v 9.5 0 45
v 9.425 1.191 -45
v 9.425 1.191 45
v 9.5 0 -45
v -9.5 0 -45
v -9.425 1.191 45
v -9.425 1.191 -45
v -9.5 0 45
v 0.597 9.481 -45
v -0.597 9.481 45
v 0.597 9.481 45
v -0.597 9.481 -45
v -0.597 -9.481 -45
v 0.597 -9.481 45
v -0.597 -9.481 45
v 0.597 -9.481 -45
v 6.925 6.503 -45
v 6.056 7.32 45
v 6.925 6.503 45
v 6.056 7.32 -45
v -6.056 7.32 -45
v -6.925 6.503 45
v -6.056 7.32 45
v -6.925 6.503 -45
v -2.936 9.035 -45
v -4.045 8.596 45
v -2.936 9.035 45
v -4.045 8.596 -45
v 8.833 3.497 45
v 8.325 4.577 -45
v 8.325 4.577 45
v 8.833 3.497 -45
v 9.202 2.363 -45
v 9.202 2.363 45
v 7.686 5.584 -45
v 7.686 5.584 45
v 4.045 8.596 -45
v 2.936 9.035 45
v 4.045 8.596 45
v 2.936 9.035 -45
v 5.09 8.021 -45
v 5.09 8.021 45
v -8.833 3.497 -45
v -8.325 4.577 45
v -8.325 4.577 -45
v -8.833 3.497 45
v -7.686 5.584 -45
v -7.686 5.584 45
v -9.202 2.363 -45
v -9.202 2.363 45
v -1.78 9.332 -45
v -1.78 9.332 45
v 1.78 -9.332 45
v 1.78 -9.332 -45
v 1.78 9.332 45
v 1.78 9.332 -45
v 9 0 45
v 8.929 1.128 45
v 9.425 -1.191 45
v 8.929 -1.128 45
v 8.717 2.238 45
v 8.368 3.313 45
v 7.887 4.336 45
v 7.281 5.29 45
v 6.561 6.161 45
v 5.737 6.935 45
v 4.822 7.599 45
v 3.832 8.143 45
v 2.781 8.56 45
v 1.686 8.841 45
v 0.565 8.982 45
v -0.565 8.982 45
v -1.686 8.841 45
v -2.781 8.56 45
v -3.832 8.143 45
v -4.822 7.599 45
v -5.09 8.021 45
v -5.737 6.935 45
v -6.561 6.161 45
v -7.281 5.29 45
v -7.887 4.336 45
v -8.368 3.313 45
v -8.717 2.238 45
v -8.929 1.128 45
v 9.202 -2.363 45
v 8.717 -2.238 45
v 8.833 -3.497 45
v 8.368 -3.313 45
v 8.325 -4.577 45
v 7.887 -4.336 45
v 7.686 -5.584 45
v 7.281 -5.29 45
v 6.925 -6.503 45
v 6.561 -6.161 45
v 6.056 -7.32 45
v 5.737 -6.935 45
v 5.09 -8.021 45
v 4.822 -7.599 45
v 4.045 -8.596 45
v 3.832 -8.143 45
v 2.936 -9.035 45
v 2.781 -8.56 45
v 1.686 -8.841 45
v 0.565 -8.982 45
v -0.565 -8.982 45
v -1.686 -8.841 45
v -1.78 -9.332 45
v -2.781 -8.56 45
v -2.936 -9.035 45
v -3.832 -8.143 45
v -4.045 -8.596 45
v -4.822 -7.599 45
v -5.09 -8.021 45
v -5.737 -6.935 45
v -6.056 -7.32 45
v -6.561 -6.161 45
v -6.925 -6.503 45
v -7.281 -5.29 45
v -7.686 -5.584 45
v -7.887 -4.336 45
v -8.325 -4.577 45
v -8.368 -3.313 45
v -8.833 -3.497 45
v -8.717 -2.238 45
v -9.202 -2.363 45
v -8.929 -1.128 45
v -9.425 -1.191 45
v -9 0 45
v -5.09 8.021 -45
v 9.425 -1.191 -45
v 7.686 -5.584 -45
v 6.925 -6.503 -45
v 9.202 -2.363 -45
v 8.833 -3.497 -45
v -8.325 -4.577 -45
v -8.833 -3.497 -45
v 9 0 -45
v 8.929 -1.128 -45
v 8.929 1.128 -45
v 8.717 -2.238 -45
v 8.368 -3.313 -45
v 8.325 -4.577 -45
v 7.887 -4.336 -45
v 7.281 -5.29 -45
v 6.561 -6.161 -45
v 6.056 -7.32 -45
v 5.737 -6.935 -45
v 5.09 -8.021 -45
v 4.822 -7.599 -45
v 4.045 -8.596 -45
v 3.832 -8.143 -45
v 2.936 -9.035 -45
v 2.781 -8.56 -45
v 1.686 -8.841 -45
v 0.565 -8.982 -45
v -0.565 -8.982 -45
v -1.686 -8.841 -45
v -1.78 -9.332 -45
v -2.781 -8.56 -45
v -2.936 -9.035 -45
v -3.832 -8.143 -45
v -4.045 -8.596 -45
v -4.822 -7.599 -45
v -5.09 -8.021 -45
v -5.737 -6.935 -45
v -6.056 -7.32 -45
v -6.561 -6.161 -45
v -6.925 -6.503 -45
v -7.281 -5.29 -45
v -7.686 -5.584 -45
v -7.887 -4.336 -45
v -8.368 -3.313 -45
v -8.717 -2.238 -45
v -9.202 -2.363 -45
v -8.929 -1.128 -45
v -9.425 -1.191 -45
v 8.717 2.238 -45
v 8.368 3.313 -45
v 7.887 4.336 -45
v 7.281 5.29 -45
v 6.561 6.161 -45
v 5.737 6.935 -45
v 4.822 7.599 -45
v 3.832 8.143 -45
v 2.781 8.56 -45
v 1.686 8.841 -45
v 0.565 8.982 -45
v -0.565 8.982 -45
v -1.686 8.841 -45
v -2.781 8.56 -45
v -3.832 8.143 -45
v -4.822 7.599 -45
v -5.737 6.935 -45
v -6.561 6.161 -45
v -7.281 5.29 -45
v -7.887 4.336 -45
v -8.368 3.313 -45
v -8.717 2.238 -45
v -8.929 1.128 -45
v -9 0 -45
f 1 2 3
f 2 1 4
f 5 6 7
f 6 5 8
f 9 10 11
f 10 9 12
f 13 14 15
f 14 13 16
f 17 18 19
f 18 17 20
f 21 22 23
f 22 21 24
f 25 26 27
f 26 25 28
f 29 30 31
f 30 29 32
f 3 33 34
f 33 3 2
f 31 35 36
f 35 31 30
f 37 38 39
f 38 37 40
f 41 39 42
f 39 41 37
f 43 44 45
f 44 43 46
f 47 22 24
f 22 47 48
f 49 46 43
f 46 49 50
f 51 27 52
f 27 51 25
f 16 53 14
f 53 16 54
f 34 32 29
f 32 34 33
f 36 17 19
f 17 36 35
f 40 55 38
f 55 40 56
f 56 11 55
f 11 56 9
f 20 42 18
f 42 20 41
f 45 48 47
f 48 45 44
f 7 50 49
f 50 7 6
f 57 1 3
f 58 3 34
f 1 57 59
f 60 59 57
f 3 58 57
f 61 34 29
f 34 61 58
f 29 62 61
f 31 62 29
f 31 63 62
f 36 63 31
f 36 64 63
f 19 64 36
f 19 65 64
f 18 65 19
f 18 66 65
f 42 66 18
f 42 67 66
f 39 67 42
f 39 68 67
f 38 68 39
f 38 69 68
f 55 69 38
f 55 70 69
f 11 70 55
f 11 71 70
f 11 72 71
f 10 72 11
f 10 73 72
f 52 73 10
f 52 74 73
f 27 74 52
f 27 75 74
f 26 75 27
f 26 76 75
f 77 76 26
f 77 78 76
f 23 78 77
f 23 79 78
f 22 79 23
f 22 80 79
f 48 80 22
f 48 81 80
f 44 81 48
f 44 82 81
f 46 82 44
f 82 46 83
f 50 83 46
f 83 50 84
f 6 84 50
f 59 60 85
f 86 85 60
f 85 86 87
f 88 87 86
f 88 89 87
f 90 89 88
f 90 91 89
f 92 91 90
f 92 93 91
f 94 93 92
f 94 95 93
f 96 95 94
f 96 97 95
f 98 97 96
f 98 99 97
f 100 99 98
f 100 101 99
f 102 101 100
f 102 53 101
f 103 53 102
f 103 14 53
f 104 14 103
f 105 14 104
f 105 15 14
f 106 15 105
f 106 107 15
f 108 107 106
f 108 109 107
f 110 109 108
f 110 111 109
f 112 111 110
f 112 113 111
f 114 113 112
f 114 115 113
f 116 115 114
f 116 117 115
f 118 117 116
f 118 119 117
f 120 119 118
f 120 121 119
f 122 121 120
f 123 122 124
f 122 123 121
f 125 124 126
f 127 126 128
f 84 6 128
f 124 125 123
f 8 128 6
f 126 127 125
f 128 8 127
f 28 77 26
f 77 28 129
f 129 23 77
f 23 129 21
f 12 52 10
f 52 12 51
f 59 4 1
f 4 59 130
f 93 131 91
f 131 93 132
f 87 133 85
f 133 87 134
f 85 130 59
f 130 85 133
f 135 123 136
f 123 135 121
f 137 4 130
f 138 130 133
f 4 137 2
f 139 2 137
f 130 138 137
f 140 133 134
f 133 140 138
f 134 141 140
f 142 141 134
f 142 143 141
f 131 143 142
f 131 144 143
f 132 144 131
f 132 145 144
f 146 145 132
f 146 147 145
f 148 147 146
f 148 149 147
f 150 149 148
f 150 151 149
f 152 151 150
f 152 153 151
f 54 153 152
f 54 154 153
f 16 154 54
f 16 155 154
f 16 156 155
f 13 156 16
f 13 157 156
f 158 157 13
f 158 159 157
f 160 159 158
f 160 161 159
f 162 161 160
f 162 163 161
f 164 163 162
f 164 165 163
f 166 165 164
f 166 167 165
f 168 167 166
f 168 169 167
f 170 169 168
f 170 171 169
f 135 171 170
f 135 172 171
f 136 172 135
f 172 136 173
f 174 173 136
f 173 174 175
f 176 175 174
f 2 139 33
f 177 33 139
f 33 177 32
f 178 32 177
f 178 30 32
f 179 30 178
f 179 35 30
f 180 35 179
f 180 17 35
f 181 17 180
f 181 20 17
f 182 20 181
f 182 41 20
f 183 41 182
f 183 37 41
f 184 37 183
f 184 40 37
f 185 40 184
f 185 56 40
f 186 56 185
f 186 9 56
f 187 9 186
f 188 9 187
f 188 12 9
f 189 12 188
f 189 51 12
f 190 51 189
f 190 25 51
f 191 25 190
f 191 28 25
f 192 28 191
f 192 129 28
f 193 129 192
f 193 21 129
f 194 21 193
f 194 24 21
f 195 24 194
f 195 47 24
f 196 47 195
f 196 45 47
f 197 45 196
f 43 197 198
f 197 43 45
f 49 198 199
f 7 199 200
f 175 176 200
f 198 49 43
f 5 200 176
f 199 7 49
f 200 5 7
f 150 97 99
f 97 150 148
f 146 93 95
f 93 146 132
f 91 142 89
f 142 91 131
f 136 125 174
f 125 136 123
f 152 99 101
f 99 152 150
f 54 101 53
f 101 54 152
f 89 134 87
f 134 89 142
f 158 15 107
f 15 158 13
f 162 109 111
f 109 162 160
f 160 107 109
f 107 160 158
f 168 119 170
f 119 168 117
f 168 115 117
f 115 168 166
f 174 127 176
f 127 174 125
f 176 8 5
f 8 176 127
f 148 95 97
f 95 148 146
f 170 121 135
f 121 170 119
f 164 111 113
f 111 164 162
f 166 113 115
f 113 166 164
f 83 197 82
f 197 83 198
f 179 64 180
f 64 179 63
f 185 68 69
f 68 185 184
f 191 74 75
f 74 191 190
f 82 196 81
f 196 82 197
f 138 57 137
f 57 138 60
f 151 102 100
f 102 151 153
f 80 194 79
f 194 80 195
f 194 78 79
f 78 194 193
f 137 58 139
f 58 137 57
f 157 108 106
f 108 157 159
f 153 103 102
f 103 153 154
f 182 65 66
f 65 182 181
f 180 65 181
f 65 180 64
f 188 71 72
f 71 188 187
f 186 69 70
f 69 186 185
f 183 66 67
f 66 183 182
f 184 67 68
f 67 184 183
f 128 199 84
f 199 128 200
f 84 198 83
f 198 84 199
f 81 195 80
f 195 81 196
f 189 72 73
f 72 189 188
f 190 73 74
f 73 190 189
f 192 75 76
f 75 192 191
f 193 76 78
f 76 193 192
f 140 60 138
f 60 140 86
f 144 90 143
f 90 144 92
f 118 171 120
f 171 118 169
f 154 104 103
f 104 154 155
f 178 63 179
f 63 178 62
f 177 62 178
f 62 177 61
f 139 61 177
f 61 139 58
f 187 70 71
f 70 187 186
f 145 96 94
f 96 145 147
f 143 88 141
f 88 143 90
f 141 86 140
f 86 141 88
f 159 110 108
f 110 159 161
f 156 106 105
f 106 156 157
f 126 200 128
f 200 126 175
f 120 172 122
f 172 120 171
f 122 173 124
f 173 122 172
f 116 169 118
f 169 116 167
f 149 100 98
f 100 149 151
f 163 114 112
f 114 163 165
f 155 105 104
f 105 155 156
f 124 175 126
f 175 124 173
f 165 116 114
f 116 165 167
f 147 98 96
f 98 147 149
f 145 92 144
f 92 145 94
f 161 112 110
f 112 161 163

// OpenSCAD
$fn = 50;


difference() {
	union() {
		translate(v = [0, 0, -45.0000000000]) {
			cylinder(h = 90, r = 9.5000000000);
		}
	}
	union() {
		translate(v = [0, 0, -100.0000000000]) {
			cylinder(h = 200, r = 9);
		}
	}
}
